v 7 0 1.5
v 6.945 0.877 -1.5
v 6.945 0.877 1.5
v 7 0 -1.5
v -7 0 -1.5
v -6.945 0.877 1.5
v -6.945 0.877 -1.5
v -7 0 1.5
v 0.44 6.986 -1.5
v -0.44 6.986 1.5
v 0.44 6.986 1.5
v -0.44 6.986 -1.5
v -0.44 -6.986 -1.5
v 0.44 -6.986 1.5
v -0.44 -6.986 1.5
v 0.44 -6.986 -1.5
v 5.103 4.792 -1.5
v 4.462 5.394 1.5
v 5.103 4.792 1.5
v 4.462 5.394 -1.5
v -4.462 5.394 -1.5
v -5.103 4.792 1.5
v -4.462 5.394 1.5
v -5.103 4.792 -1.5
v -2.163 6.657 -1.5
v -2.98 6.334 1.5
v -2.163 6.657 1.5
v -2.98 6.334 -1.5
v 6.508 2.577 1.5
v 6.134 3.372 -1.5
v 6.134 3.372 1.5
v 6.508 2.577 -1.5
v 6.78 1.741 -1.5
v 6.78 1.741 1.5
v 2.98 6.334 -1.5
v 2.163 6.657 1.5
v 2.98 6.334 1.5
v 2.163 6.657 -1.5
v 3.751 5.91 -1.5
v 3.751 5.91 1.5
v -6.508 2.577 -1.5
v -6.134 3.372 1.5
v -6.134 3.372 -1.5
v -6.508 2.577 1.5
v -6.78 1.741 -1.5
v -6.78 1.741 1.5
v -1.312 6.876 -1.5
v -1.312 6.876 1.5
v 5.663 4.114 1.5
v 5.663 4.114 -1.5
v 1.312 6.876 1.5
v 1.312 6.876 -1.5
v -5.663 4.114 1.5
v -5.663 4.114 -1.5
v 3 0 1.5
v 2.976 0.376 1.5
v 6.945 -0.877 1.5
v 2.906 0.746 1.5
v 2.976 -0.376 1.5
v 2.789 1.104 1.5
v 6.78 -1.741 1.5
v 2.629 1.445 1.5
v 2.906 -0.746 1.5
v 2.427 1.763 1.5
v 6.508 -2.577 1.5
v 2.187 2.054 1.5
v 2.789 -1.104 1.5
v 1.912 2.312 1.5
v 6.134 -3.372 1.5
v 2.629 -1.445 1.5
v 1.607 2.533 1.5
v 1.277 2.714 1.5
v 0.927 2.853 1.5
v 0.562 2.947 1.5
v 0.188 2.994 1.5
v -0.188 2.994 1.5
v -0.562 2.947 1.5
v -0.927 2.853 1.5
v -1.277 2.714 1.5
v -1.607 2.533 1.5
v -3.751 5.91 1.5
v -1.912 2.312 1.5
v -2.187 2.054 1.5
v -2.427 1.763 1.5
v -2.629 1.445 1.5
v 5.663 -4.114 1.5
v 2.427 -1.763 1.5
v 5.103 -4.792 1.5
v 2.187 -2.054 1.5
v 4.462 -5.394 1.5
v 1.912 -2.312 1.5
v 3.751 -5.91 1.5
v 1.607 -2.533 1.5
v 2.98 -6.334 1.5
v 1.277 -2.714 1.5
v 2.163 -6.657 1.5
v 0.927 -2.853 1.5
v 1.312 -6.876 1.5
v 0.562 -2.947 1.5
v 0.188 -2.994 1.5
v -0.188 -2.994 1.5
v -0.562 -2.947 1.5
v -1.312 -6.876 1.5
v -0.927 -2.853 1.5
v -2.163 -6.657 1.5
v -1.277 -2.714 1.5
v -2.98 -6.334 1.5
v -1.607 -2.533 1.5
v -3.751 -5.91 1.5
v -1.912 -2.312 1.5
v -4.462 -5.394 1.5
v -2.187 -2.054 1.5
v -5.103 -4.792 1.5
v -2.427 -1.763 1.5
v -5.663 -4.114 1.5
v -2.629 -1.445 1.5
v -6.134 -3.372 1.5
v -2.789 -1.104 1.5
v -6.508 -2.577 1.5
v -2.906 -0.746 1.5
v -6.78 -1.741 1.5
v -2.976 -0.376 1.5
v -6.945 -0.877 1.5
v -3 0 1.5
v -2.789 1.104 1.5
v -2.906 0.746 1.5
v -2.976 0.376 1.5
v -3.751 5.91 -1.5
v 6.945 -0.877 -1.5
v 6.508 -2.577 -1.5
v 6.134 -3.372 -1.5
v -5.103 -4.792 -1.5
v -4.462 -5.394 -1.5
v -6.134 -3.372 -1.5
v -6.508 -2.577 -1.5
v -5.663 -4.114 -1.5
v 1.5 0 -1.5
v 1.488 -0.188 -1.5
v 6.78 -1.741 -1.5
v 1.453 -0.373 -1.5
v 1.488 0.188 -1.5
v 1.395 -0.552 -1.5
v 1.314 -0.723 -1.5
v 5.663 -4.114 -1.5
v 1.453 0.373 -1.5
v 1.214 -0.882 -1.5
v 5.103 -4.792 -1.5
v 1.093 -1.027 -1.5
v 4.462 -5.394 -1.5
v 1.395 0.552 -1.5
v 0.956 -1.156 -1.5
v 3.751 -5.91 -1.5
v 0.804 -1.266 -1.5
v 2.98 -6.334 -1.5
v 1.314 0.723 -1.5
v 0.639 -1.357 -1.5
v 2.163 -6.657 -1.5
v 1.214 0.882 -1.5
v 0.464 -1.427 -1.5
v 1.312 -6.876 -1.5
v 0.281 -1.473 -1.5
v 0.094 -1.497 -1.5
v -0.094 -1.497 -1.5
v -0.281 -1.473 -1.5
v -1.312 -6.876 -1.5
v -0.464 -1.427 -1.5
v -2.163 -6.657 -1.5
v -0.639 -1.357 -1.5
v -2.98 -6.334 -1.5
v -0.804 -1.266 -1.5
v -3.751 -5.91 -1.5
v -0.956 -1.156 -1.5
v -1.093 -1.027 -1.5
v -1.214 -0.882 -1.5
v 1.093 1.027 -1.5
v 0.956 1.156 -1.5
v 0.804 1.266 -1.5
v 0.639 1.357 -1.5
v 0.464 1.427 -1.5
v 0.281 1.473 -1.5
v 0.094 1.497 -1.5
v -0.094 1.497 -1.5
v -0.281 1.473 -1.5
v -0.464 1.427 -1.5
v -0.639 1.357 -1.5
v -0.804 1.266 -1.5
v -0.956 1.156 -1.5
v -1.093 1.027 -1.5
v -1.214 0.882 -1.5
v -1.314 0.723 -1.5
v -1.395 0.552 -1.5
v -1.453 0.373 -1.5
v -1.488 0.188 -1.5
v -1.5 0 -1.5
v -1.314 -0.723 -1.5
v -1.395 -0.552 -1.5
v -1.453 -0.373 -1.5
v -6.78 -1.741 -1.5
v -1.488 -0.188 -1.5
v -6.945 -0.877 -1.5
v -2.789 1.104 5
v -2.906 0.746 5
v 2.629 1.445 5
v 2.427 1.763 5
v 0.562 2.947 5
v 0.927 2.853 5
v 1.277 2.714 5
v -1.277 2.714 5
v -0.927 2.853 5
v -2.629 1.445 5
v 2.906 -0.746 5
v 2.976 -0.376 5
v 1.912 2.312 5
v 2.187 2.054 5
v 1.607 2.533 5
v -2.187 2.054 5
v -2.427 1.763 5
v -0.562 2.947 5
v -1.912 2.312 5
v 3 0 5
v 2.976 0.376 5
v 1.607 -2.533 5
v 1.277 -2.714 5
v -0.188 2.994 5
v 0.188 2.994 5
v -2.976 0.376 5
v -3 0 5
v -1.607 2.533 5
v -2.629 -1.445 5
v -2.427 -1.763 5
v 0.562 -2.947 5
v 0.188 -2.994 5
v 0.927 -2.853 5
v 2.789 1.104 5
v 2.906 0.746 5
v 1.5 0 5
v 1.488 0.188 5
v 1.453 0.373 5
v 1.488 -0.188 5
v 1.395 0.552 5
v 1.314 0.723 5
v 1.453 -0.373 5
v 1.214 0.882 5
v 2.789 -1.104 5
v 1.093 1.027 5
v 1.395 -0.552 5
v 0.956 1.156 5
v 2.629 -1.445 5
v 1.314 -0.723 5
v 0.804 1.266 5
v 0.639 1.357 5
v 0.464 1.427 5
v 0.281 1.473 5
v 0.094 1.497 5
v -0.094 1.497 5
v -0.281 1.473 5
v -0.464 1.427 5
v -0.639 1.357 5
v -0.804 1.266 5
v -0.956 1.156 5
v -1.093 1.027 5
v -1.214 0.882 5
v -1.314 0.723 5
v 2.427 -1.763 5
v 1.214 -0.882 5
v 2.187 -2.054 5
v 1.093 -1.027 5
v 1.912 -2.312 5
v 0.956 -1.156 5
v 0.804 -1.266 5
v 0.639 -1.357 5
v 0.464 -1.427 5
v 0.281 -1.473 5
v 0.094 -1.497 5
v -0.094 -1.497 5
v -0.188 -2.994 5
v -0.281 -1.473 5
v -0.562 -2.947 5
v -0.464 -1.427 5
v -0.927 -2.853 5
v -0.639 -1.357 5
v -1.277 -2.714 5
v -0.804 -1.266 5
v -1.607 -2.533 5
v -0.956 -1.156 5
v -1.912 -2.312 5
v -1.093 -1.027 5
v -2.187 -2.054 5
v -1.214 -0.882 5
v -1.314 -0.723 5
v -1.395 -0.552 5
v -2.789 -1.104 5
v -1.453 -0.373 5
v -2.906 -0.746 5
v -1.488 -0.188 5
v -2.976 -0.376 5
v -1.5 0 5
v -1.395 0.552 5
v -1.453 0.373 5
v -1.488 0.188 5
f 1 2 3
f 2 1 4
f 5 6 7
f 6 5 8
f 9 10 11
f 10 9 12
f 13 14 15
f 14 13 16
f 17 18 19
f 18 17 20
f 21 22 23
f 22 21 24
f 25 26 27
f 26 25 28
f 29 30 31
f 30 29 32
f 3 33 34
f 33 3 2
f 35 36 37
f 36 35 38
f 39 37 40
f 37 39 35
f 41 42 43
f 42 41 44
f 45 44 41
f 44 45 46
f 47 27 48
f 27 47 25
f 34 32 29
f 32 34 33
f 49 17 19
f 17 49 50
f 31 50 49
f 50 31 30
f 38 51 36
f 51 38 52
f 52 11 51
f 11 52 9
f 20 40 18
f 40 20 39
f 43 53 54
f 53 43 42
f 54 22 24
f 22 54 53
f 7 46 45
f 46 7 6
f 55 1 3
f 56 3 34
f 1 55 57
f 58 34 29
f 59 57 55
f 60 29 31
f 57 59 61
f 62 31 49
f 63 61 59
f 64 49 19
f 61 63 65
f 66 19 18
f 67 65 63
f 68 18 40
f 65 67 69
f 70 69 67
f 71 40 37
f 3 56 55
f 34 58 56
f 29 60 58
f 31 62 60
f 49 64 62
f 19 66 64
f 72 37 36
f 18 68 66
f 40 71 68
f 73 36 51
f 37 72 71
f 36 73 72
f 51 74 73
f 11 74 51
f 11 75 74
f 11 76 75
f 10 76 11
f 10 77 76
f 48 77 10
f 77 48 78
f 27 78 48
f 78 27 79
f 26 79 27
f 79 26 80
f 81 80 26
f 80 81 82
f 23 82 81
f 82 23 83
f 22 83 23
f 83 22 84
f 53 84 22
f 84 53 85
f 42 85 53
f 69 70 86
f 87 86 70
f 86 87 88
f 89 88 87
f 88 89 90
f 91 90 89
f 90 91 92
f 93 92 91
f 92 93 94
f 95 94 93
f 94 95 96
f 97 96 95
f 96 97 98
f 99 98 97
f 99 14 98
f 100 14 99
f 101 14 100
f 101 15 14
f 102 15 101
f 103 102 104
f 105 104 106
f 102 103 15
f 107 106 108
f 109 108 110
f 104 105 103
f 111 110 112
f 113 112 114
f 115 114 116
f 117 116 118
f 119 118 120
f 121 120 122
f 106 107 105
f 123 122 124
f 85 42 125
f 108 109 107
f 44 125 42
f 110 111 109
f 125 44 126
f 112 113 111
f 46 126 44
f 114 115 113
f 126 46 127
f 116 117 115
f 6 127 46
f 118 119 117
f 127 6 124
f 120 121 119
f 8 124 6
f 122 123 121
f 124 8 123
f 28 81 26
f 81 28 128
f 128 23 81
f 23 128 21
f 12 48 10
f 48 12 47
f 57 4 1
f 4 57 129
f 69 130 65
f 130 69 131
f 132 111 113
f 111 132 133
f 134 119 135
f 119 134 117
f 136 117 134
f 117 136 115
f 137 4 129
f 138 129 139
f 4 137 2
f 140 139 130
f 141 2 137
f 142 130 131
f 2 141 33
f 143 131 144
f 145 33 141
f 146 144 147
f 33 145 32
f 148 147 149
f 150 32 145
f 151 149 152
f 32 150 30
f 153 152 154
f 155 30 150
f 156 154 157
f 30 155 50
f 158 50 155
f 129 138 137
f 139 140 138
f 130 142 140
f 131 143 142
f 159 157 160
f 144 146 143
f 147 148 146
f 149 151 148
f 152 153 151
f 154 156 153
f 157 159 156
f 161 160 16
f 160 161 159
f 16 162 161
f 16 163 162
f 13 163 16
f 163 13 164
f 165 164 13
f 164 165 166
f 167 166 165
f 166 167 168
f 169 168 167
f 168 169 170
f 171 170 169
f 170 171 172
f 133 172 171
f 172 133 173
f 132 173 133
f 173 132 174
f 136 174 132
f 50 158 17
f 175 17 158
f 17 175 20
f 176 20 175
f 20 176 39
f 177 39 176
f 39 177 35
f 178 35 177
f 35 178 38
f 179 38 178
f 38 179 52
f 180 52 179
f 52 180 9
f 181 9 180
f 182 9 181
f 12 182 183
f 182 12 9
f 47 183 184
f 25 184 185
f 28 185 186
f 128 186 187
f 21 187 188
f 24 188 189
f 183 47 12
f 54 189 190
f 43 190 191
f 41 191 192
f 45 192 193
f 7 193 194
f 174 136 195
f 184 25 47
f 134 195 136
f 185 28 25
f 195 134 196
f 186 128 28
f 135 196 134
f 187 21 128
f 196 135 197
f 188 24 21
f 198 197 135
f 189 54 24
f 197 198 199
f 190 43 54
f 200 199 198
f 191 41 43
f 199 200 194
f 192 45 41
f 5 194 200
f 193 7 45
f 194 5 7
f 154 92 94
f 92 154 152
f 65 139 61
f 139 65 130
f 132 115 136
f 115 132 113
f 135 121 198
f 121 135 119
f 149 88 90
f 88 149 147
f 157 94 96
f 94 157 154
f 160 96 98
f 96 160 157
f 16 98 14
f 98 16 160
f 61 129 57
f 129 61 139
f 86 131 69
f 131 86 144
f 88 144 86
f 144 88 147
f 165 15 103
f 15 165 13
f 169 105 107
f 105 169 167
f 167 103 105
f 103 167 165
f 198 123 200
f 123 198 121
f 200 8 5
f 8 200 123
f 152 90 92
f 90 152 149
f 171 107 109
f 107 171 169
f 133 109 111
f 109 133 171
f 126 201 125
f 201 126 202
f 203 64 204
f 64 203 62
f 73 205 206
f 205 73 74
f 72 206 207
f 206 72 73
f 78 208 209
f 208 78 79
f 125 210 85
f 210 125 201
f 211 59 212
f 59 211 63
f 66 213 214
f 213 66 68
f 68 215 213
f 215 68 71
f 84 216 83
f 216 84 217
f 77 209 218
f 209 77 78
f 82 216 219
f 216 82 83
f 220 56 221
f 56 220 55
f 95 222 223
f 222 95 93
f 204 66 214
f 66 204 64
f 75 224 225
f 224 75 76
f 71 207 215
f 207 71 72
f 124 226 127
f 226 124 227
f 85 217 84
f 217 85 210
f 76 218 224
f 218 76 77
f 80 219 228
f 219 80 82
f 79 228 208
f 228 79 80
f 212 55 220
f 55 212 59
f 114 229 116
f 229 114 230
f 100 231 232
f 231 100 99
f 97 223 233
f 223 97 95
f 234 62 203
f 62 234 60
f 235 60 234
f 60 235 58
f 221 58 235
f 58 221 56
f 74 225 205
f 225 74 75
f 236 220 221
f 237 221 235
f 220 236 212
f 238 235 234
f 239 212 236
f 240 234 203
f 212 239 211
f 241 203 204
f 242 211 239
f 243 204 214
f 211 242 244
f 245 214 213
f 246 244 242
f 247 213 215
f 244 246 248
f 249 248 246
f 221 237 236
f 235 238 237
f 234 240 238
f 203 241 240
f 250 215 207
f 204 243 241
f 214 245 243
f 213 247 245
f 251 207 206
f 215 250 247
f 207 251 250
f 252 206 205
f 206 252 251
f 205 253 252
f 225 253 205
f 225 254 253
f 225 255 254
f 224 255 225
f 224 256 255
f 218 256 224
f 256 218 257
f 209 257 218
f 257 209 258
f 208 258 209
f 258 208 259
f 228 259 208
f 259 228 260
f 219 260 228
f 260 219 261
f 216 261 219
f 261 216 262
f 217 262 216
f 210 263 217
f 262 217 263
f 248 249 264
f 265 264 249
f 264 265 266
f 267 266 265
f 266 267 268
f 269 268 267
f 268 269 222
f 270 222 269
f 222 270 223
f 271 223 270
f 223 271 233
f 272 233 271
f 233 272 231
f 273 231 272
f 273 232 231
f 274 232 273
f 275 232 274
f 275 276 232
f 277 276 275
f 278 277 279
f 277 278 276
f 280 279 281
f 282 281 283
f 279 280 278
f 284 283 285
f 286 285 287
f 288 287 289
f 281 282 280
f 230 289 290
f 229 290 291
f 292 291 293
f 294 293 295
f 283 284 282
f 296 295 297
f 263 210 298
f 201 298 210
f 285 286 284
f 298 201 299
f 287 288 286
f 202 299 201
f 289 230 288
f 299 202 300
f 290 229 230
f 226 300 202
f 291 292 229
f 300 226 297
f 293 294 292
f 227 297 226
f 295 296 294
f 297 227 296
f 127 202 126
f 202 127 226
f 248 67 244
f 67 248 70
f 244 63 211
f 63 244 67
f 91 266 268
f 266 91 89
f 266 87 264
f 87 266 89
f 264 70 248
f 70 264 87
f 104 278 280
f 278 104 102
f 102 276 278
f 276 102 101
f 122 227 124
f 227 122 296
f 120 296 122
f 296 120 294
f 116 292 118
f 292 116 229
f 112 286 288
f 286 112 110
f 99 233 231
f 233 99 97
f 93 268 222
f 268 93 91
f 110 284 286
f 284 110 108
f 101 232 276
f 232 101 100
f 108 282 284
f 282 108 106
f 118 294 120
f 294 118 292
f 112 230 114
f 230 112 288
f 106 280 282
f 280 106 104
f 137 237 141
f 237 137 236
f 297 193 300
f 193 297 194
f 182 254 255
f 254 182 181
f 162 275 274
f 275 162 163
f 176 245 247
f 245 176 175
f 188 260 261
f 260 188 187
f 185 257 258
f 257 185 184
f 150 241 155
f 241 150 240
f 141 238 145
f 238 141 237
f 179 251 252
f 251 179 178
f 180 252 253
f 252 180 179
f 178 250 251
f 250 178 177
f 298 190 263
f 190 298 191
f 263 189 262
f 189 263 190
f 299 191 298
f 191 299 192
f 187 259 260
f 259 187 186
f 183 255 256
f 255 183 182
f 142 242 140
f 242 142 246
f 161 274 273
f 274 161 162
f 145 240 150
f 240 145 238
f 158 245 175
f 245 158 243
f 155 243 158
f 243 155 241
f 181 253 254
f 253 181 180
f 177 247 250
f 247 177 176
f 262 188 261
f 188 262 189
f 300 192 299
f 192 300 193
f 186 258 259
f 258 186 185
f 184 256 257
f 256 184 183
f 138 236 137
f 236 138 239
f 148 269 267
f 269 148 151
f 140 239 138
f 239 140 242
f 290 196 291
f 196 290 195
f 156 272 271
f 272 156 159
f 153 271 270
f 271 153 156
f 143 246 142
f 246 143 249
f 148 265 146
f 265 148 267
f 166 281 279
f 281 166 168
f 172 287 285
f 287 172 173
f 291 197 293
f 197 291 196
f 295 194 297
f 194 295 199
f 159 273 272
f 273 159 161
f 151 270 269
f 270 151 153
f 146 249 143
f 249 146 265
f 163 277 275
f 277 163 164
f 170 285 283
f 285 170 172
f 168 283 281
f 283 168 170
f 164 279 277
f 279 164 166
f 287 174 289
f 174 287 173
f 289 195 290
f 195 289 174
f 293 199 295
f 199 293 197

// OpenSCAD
$fn = 50;


difference() {
	union() {
		translate(v = [0, 0, -1.5000000000]) {
			cylinder(h = 3, r = 7.0000000000);
		}
		translate(v = [0, 0, -1.5000000000]) {
			cylinder(h = 6.5000000000, r = 3.0000000000);
		}
	}
	union() {
		translate(v = [0, 0, -50.0000000000]) {
			cylinder(h = 100, r = 1.5000000000);
		}
	}
}
